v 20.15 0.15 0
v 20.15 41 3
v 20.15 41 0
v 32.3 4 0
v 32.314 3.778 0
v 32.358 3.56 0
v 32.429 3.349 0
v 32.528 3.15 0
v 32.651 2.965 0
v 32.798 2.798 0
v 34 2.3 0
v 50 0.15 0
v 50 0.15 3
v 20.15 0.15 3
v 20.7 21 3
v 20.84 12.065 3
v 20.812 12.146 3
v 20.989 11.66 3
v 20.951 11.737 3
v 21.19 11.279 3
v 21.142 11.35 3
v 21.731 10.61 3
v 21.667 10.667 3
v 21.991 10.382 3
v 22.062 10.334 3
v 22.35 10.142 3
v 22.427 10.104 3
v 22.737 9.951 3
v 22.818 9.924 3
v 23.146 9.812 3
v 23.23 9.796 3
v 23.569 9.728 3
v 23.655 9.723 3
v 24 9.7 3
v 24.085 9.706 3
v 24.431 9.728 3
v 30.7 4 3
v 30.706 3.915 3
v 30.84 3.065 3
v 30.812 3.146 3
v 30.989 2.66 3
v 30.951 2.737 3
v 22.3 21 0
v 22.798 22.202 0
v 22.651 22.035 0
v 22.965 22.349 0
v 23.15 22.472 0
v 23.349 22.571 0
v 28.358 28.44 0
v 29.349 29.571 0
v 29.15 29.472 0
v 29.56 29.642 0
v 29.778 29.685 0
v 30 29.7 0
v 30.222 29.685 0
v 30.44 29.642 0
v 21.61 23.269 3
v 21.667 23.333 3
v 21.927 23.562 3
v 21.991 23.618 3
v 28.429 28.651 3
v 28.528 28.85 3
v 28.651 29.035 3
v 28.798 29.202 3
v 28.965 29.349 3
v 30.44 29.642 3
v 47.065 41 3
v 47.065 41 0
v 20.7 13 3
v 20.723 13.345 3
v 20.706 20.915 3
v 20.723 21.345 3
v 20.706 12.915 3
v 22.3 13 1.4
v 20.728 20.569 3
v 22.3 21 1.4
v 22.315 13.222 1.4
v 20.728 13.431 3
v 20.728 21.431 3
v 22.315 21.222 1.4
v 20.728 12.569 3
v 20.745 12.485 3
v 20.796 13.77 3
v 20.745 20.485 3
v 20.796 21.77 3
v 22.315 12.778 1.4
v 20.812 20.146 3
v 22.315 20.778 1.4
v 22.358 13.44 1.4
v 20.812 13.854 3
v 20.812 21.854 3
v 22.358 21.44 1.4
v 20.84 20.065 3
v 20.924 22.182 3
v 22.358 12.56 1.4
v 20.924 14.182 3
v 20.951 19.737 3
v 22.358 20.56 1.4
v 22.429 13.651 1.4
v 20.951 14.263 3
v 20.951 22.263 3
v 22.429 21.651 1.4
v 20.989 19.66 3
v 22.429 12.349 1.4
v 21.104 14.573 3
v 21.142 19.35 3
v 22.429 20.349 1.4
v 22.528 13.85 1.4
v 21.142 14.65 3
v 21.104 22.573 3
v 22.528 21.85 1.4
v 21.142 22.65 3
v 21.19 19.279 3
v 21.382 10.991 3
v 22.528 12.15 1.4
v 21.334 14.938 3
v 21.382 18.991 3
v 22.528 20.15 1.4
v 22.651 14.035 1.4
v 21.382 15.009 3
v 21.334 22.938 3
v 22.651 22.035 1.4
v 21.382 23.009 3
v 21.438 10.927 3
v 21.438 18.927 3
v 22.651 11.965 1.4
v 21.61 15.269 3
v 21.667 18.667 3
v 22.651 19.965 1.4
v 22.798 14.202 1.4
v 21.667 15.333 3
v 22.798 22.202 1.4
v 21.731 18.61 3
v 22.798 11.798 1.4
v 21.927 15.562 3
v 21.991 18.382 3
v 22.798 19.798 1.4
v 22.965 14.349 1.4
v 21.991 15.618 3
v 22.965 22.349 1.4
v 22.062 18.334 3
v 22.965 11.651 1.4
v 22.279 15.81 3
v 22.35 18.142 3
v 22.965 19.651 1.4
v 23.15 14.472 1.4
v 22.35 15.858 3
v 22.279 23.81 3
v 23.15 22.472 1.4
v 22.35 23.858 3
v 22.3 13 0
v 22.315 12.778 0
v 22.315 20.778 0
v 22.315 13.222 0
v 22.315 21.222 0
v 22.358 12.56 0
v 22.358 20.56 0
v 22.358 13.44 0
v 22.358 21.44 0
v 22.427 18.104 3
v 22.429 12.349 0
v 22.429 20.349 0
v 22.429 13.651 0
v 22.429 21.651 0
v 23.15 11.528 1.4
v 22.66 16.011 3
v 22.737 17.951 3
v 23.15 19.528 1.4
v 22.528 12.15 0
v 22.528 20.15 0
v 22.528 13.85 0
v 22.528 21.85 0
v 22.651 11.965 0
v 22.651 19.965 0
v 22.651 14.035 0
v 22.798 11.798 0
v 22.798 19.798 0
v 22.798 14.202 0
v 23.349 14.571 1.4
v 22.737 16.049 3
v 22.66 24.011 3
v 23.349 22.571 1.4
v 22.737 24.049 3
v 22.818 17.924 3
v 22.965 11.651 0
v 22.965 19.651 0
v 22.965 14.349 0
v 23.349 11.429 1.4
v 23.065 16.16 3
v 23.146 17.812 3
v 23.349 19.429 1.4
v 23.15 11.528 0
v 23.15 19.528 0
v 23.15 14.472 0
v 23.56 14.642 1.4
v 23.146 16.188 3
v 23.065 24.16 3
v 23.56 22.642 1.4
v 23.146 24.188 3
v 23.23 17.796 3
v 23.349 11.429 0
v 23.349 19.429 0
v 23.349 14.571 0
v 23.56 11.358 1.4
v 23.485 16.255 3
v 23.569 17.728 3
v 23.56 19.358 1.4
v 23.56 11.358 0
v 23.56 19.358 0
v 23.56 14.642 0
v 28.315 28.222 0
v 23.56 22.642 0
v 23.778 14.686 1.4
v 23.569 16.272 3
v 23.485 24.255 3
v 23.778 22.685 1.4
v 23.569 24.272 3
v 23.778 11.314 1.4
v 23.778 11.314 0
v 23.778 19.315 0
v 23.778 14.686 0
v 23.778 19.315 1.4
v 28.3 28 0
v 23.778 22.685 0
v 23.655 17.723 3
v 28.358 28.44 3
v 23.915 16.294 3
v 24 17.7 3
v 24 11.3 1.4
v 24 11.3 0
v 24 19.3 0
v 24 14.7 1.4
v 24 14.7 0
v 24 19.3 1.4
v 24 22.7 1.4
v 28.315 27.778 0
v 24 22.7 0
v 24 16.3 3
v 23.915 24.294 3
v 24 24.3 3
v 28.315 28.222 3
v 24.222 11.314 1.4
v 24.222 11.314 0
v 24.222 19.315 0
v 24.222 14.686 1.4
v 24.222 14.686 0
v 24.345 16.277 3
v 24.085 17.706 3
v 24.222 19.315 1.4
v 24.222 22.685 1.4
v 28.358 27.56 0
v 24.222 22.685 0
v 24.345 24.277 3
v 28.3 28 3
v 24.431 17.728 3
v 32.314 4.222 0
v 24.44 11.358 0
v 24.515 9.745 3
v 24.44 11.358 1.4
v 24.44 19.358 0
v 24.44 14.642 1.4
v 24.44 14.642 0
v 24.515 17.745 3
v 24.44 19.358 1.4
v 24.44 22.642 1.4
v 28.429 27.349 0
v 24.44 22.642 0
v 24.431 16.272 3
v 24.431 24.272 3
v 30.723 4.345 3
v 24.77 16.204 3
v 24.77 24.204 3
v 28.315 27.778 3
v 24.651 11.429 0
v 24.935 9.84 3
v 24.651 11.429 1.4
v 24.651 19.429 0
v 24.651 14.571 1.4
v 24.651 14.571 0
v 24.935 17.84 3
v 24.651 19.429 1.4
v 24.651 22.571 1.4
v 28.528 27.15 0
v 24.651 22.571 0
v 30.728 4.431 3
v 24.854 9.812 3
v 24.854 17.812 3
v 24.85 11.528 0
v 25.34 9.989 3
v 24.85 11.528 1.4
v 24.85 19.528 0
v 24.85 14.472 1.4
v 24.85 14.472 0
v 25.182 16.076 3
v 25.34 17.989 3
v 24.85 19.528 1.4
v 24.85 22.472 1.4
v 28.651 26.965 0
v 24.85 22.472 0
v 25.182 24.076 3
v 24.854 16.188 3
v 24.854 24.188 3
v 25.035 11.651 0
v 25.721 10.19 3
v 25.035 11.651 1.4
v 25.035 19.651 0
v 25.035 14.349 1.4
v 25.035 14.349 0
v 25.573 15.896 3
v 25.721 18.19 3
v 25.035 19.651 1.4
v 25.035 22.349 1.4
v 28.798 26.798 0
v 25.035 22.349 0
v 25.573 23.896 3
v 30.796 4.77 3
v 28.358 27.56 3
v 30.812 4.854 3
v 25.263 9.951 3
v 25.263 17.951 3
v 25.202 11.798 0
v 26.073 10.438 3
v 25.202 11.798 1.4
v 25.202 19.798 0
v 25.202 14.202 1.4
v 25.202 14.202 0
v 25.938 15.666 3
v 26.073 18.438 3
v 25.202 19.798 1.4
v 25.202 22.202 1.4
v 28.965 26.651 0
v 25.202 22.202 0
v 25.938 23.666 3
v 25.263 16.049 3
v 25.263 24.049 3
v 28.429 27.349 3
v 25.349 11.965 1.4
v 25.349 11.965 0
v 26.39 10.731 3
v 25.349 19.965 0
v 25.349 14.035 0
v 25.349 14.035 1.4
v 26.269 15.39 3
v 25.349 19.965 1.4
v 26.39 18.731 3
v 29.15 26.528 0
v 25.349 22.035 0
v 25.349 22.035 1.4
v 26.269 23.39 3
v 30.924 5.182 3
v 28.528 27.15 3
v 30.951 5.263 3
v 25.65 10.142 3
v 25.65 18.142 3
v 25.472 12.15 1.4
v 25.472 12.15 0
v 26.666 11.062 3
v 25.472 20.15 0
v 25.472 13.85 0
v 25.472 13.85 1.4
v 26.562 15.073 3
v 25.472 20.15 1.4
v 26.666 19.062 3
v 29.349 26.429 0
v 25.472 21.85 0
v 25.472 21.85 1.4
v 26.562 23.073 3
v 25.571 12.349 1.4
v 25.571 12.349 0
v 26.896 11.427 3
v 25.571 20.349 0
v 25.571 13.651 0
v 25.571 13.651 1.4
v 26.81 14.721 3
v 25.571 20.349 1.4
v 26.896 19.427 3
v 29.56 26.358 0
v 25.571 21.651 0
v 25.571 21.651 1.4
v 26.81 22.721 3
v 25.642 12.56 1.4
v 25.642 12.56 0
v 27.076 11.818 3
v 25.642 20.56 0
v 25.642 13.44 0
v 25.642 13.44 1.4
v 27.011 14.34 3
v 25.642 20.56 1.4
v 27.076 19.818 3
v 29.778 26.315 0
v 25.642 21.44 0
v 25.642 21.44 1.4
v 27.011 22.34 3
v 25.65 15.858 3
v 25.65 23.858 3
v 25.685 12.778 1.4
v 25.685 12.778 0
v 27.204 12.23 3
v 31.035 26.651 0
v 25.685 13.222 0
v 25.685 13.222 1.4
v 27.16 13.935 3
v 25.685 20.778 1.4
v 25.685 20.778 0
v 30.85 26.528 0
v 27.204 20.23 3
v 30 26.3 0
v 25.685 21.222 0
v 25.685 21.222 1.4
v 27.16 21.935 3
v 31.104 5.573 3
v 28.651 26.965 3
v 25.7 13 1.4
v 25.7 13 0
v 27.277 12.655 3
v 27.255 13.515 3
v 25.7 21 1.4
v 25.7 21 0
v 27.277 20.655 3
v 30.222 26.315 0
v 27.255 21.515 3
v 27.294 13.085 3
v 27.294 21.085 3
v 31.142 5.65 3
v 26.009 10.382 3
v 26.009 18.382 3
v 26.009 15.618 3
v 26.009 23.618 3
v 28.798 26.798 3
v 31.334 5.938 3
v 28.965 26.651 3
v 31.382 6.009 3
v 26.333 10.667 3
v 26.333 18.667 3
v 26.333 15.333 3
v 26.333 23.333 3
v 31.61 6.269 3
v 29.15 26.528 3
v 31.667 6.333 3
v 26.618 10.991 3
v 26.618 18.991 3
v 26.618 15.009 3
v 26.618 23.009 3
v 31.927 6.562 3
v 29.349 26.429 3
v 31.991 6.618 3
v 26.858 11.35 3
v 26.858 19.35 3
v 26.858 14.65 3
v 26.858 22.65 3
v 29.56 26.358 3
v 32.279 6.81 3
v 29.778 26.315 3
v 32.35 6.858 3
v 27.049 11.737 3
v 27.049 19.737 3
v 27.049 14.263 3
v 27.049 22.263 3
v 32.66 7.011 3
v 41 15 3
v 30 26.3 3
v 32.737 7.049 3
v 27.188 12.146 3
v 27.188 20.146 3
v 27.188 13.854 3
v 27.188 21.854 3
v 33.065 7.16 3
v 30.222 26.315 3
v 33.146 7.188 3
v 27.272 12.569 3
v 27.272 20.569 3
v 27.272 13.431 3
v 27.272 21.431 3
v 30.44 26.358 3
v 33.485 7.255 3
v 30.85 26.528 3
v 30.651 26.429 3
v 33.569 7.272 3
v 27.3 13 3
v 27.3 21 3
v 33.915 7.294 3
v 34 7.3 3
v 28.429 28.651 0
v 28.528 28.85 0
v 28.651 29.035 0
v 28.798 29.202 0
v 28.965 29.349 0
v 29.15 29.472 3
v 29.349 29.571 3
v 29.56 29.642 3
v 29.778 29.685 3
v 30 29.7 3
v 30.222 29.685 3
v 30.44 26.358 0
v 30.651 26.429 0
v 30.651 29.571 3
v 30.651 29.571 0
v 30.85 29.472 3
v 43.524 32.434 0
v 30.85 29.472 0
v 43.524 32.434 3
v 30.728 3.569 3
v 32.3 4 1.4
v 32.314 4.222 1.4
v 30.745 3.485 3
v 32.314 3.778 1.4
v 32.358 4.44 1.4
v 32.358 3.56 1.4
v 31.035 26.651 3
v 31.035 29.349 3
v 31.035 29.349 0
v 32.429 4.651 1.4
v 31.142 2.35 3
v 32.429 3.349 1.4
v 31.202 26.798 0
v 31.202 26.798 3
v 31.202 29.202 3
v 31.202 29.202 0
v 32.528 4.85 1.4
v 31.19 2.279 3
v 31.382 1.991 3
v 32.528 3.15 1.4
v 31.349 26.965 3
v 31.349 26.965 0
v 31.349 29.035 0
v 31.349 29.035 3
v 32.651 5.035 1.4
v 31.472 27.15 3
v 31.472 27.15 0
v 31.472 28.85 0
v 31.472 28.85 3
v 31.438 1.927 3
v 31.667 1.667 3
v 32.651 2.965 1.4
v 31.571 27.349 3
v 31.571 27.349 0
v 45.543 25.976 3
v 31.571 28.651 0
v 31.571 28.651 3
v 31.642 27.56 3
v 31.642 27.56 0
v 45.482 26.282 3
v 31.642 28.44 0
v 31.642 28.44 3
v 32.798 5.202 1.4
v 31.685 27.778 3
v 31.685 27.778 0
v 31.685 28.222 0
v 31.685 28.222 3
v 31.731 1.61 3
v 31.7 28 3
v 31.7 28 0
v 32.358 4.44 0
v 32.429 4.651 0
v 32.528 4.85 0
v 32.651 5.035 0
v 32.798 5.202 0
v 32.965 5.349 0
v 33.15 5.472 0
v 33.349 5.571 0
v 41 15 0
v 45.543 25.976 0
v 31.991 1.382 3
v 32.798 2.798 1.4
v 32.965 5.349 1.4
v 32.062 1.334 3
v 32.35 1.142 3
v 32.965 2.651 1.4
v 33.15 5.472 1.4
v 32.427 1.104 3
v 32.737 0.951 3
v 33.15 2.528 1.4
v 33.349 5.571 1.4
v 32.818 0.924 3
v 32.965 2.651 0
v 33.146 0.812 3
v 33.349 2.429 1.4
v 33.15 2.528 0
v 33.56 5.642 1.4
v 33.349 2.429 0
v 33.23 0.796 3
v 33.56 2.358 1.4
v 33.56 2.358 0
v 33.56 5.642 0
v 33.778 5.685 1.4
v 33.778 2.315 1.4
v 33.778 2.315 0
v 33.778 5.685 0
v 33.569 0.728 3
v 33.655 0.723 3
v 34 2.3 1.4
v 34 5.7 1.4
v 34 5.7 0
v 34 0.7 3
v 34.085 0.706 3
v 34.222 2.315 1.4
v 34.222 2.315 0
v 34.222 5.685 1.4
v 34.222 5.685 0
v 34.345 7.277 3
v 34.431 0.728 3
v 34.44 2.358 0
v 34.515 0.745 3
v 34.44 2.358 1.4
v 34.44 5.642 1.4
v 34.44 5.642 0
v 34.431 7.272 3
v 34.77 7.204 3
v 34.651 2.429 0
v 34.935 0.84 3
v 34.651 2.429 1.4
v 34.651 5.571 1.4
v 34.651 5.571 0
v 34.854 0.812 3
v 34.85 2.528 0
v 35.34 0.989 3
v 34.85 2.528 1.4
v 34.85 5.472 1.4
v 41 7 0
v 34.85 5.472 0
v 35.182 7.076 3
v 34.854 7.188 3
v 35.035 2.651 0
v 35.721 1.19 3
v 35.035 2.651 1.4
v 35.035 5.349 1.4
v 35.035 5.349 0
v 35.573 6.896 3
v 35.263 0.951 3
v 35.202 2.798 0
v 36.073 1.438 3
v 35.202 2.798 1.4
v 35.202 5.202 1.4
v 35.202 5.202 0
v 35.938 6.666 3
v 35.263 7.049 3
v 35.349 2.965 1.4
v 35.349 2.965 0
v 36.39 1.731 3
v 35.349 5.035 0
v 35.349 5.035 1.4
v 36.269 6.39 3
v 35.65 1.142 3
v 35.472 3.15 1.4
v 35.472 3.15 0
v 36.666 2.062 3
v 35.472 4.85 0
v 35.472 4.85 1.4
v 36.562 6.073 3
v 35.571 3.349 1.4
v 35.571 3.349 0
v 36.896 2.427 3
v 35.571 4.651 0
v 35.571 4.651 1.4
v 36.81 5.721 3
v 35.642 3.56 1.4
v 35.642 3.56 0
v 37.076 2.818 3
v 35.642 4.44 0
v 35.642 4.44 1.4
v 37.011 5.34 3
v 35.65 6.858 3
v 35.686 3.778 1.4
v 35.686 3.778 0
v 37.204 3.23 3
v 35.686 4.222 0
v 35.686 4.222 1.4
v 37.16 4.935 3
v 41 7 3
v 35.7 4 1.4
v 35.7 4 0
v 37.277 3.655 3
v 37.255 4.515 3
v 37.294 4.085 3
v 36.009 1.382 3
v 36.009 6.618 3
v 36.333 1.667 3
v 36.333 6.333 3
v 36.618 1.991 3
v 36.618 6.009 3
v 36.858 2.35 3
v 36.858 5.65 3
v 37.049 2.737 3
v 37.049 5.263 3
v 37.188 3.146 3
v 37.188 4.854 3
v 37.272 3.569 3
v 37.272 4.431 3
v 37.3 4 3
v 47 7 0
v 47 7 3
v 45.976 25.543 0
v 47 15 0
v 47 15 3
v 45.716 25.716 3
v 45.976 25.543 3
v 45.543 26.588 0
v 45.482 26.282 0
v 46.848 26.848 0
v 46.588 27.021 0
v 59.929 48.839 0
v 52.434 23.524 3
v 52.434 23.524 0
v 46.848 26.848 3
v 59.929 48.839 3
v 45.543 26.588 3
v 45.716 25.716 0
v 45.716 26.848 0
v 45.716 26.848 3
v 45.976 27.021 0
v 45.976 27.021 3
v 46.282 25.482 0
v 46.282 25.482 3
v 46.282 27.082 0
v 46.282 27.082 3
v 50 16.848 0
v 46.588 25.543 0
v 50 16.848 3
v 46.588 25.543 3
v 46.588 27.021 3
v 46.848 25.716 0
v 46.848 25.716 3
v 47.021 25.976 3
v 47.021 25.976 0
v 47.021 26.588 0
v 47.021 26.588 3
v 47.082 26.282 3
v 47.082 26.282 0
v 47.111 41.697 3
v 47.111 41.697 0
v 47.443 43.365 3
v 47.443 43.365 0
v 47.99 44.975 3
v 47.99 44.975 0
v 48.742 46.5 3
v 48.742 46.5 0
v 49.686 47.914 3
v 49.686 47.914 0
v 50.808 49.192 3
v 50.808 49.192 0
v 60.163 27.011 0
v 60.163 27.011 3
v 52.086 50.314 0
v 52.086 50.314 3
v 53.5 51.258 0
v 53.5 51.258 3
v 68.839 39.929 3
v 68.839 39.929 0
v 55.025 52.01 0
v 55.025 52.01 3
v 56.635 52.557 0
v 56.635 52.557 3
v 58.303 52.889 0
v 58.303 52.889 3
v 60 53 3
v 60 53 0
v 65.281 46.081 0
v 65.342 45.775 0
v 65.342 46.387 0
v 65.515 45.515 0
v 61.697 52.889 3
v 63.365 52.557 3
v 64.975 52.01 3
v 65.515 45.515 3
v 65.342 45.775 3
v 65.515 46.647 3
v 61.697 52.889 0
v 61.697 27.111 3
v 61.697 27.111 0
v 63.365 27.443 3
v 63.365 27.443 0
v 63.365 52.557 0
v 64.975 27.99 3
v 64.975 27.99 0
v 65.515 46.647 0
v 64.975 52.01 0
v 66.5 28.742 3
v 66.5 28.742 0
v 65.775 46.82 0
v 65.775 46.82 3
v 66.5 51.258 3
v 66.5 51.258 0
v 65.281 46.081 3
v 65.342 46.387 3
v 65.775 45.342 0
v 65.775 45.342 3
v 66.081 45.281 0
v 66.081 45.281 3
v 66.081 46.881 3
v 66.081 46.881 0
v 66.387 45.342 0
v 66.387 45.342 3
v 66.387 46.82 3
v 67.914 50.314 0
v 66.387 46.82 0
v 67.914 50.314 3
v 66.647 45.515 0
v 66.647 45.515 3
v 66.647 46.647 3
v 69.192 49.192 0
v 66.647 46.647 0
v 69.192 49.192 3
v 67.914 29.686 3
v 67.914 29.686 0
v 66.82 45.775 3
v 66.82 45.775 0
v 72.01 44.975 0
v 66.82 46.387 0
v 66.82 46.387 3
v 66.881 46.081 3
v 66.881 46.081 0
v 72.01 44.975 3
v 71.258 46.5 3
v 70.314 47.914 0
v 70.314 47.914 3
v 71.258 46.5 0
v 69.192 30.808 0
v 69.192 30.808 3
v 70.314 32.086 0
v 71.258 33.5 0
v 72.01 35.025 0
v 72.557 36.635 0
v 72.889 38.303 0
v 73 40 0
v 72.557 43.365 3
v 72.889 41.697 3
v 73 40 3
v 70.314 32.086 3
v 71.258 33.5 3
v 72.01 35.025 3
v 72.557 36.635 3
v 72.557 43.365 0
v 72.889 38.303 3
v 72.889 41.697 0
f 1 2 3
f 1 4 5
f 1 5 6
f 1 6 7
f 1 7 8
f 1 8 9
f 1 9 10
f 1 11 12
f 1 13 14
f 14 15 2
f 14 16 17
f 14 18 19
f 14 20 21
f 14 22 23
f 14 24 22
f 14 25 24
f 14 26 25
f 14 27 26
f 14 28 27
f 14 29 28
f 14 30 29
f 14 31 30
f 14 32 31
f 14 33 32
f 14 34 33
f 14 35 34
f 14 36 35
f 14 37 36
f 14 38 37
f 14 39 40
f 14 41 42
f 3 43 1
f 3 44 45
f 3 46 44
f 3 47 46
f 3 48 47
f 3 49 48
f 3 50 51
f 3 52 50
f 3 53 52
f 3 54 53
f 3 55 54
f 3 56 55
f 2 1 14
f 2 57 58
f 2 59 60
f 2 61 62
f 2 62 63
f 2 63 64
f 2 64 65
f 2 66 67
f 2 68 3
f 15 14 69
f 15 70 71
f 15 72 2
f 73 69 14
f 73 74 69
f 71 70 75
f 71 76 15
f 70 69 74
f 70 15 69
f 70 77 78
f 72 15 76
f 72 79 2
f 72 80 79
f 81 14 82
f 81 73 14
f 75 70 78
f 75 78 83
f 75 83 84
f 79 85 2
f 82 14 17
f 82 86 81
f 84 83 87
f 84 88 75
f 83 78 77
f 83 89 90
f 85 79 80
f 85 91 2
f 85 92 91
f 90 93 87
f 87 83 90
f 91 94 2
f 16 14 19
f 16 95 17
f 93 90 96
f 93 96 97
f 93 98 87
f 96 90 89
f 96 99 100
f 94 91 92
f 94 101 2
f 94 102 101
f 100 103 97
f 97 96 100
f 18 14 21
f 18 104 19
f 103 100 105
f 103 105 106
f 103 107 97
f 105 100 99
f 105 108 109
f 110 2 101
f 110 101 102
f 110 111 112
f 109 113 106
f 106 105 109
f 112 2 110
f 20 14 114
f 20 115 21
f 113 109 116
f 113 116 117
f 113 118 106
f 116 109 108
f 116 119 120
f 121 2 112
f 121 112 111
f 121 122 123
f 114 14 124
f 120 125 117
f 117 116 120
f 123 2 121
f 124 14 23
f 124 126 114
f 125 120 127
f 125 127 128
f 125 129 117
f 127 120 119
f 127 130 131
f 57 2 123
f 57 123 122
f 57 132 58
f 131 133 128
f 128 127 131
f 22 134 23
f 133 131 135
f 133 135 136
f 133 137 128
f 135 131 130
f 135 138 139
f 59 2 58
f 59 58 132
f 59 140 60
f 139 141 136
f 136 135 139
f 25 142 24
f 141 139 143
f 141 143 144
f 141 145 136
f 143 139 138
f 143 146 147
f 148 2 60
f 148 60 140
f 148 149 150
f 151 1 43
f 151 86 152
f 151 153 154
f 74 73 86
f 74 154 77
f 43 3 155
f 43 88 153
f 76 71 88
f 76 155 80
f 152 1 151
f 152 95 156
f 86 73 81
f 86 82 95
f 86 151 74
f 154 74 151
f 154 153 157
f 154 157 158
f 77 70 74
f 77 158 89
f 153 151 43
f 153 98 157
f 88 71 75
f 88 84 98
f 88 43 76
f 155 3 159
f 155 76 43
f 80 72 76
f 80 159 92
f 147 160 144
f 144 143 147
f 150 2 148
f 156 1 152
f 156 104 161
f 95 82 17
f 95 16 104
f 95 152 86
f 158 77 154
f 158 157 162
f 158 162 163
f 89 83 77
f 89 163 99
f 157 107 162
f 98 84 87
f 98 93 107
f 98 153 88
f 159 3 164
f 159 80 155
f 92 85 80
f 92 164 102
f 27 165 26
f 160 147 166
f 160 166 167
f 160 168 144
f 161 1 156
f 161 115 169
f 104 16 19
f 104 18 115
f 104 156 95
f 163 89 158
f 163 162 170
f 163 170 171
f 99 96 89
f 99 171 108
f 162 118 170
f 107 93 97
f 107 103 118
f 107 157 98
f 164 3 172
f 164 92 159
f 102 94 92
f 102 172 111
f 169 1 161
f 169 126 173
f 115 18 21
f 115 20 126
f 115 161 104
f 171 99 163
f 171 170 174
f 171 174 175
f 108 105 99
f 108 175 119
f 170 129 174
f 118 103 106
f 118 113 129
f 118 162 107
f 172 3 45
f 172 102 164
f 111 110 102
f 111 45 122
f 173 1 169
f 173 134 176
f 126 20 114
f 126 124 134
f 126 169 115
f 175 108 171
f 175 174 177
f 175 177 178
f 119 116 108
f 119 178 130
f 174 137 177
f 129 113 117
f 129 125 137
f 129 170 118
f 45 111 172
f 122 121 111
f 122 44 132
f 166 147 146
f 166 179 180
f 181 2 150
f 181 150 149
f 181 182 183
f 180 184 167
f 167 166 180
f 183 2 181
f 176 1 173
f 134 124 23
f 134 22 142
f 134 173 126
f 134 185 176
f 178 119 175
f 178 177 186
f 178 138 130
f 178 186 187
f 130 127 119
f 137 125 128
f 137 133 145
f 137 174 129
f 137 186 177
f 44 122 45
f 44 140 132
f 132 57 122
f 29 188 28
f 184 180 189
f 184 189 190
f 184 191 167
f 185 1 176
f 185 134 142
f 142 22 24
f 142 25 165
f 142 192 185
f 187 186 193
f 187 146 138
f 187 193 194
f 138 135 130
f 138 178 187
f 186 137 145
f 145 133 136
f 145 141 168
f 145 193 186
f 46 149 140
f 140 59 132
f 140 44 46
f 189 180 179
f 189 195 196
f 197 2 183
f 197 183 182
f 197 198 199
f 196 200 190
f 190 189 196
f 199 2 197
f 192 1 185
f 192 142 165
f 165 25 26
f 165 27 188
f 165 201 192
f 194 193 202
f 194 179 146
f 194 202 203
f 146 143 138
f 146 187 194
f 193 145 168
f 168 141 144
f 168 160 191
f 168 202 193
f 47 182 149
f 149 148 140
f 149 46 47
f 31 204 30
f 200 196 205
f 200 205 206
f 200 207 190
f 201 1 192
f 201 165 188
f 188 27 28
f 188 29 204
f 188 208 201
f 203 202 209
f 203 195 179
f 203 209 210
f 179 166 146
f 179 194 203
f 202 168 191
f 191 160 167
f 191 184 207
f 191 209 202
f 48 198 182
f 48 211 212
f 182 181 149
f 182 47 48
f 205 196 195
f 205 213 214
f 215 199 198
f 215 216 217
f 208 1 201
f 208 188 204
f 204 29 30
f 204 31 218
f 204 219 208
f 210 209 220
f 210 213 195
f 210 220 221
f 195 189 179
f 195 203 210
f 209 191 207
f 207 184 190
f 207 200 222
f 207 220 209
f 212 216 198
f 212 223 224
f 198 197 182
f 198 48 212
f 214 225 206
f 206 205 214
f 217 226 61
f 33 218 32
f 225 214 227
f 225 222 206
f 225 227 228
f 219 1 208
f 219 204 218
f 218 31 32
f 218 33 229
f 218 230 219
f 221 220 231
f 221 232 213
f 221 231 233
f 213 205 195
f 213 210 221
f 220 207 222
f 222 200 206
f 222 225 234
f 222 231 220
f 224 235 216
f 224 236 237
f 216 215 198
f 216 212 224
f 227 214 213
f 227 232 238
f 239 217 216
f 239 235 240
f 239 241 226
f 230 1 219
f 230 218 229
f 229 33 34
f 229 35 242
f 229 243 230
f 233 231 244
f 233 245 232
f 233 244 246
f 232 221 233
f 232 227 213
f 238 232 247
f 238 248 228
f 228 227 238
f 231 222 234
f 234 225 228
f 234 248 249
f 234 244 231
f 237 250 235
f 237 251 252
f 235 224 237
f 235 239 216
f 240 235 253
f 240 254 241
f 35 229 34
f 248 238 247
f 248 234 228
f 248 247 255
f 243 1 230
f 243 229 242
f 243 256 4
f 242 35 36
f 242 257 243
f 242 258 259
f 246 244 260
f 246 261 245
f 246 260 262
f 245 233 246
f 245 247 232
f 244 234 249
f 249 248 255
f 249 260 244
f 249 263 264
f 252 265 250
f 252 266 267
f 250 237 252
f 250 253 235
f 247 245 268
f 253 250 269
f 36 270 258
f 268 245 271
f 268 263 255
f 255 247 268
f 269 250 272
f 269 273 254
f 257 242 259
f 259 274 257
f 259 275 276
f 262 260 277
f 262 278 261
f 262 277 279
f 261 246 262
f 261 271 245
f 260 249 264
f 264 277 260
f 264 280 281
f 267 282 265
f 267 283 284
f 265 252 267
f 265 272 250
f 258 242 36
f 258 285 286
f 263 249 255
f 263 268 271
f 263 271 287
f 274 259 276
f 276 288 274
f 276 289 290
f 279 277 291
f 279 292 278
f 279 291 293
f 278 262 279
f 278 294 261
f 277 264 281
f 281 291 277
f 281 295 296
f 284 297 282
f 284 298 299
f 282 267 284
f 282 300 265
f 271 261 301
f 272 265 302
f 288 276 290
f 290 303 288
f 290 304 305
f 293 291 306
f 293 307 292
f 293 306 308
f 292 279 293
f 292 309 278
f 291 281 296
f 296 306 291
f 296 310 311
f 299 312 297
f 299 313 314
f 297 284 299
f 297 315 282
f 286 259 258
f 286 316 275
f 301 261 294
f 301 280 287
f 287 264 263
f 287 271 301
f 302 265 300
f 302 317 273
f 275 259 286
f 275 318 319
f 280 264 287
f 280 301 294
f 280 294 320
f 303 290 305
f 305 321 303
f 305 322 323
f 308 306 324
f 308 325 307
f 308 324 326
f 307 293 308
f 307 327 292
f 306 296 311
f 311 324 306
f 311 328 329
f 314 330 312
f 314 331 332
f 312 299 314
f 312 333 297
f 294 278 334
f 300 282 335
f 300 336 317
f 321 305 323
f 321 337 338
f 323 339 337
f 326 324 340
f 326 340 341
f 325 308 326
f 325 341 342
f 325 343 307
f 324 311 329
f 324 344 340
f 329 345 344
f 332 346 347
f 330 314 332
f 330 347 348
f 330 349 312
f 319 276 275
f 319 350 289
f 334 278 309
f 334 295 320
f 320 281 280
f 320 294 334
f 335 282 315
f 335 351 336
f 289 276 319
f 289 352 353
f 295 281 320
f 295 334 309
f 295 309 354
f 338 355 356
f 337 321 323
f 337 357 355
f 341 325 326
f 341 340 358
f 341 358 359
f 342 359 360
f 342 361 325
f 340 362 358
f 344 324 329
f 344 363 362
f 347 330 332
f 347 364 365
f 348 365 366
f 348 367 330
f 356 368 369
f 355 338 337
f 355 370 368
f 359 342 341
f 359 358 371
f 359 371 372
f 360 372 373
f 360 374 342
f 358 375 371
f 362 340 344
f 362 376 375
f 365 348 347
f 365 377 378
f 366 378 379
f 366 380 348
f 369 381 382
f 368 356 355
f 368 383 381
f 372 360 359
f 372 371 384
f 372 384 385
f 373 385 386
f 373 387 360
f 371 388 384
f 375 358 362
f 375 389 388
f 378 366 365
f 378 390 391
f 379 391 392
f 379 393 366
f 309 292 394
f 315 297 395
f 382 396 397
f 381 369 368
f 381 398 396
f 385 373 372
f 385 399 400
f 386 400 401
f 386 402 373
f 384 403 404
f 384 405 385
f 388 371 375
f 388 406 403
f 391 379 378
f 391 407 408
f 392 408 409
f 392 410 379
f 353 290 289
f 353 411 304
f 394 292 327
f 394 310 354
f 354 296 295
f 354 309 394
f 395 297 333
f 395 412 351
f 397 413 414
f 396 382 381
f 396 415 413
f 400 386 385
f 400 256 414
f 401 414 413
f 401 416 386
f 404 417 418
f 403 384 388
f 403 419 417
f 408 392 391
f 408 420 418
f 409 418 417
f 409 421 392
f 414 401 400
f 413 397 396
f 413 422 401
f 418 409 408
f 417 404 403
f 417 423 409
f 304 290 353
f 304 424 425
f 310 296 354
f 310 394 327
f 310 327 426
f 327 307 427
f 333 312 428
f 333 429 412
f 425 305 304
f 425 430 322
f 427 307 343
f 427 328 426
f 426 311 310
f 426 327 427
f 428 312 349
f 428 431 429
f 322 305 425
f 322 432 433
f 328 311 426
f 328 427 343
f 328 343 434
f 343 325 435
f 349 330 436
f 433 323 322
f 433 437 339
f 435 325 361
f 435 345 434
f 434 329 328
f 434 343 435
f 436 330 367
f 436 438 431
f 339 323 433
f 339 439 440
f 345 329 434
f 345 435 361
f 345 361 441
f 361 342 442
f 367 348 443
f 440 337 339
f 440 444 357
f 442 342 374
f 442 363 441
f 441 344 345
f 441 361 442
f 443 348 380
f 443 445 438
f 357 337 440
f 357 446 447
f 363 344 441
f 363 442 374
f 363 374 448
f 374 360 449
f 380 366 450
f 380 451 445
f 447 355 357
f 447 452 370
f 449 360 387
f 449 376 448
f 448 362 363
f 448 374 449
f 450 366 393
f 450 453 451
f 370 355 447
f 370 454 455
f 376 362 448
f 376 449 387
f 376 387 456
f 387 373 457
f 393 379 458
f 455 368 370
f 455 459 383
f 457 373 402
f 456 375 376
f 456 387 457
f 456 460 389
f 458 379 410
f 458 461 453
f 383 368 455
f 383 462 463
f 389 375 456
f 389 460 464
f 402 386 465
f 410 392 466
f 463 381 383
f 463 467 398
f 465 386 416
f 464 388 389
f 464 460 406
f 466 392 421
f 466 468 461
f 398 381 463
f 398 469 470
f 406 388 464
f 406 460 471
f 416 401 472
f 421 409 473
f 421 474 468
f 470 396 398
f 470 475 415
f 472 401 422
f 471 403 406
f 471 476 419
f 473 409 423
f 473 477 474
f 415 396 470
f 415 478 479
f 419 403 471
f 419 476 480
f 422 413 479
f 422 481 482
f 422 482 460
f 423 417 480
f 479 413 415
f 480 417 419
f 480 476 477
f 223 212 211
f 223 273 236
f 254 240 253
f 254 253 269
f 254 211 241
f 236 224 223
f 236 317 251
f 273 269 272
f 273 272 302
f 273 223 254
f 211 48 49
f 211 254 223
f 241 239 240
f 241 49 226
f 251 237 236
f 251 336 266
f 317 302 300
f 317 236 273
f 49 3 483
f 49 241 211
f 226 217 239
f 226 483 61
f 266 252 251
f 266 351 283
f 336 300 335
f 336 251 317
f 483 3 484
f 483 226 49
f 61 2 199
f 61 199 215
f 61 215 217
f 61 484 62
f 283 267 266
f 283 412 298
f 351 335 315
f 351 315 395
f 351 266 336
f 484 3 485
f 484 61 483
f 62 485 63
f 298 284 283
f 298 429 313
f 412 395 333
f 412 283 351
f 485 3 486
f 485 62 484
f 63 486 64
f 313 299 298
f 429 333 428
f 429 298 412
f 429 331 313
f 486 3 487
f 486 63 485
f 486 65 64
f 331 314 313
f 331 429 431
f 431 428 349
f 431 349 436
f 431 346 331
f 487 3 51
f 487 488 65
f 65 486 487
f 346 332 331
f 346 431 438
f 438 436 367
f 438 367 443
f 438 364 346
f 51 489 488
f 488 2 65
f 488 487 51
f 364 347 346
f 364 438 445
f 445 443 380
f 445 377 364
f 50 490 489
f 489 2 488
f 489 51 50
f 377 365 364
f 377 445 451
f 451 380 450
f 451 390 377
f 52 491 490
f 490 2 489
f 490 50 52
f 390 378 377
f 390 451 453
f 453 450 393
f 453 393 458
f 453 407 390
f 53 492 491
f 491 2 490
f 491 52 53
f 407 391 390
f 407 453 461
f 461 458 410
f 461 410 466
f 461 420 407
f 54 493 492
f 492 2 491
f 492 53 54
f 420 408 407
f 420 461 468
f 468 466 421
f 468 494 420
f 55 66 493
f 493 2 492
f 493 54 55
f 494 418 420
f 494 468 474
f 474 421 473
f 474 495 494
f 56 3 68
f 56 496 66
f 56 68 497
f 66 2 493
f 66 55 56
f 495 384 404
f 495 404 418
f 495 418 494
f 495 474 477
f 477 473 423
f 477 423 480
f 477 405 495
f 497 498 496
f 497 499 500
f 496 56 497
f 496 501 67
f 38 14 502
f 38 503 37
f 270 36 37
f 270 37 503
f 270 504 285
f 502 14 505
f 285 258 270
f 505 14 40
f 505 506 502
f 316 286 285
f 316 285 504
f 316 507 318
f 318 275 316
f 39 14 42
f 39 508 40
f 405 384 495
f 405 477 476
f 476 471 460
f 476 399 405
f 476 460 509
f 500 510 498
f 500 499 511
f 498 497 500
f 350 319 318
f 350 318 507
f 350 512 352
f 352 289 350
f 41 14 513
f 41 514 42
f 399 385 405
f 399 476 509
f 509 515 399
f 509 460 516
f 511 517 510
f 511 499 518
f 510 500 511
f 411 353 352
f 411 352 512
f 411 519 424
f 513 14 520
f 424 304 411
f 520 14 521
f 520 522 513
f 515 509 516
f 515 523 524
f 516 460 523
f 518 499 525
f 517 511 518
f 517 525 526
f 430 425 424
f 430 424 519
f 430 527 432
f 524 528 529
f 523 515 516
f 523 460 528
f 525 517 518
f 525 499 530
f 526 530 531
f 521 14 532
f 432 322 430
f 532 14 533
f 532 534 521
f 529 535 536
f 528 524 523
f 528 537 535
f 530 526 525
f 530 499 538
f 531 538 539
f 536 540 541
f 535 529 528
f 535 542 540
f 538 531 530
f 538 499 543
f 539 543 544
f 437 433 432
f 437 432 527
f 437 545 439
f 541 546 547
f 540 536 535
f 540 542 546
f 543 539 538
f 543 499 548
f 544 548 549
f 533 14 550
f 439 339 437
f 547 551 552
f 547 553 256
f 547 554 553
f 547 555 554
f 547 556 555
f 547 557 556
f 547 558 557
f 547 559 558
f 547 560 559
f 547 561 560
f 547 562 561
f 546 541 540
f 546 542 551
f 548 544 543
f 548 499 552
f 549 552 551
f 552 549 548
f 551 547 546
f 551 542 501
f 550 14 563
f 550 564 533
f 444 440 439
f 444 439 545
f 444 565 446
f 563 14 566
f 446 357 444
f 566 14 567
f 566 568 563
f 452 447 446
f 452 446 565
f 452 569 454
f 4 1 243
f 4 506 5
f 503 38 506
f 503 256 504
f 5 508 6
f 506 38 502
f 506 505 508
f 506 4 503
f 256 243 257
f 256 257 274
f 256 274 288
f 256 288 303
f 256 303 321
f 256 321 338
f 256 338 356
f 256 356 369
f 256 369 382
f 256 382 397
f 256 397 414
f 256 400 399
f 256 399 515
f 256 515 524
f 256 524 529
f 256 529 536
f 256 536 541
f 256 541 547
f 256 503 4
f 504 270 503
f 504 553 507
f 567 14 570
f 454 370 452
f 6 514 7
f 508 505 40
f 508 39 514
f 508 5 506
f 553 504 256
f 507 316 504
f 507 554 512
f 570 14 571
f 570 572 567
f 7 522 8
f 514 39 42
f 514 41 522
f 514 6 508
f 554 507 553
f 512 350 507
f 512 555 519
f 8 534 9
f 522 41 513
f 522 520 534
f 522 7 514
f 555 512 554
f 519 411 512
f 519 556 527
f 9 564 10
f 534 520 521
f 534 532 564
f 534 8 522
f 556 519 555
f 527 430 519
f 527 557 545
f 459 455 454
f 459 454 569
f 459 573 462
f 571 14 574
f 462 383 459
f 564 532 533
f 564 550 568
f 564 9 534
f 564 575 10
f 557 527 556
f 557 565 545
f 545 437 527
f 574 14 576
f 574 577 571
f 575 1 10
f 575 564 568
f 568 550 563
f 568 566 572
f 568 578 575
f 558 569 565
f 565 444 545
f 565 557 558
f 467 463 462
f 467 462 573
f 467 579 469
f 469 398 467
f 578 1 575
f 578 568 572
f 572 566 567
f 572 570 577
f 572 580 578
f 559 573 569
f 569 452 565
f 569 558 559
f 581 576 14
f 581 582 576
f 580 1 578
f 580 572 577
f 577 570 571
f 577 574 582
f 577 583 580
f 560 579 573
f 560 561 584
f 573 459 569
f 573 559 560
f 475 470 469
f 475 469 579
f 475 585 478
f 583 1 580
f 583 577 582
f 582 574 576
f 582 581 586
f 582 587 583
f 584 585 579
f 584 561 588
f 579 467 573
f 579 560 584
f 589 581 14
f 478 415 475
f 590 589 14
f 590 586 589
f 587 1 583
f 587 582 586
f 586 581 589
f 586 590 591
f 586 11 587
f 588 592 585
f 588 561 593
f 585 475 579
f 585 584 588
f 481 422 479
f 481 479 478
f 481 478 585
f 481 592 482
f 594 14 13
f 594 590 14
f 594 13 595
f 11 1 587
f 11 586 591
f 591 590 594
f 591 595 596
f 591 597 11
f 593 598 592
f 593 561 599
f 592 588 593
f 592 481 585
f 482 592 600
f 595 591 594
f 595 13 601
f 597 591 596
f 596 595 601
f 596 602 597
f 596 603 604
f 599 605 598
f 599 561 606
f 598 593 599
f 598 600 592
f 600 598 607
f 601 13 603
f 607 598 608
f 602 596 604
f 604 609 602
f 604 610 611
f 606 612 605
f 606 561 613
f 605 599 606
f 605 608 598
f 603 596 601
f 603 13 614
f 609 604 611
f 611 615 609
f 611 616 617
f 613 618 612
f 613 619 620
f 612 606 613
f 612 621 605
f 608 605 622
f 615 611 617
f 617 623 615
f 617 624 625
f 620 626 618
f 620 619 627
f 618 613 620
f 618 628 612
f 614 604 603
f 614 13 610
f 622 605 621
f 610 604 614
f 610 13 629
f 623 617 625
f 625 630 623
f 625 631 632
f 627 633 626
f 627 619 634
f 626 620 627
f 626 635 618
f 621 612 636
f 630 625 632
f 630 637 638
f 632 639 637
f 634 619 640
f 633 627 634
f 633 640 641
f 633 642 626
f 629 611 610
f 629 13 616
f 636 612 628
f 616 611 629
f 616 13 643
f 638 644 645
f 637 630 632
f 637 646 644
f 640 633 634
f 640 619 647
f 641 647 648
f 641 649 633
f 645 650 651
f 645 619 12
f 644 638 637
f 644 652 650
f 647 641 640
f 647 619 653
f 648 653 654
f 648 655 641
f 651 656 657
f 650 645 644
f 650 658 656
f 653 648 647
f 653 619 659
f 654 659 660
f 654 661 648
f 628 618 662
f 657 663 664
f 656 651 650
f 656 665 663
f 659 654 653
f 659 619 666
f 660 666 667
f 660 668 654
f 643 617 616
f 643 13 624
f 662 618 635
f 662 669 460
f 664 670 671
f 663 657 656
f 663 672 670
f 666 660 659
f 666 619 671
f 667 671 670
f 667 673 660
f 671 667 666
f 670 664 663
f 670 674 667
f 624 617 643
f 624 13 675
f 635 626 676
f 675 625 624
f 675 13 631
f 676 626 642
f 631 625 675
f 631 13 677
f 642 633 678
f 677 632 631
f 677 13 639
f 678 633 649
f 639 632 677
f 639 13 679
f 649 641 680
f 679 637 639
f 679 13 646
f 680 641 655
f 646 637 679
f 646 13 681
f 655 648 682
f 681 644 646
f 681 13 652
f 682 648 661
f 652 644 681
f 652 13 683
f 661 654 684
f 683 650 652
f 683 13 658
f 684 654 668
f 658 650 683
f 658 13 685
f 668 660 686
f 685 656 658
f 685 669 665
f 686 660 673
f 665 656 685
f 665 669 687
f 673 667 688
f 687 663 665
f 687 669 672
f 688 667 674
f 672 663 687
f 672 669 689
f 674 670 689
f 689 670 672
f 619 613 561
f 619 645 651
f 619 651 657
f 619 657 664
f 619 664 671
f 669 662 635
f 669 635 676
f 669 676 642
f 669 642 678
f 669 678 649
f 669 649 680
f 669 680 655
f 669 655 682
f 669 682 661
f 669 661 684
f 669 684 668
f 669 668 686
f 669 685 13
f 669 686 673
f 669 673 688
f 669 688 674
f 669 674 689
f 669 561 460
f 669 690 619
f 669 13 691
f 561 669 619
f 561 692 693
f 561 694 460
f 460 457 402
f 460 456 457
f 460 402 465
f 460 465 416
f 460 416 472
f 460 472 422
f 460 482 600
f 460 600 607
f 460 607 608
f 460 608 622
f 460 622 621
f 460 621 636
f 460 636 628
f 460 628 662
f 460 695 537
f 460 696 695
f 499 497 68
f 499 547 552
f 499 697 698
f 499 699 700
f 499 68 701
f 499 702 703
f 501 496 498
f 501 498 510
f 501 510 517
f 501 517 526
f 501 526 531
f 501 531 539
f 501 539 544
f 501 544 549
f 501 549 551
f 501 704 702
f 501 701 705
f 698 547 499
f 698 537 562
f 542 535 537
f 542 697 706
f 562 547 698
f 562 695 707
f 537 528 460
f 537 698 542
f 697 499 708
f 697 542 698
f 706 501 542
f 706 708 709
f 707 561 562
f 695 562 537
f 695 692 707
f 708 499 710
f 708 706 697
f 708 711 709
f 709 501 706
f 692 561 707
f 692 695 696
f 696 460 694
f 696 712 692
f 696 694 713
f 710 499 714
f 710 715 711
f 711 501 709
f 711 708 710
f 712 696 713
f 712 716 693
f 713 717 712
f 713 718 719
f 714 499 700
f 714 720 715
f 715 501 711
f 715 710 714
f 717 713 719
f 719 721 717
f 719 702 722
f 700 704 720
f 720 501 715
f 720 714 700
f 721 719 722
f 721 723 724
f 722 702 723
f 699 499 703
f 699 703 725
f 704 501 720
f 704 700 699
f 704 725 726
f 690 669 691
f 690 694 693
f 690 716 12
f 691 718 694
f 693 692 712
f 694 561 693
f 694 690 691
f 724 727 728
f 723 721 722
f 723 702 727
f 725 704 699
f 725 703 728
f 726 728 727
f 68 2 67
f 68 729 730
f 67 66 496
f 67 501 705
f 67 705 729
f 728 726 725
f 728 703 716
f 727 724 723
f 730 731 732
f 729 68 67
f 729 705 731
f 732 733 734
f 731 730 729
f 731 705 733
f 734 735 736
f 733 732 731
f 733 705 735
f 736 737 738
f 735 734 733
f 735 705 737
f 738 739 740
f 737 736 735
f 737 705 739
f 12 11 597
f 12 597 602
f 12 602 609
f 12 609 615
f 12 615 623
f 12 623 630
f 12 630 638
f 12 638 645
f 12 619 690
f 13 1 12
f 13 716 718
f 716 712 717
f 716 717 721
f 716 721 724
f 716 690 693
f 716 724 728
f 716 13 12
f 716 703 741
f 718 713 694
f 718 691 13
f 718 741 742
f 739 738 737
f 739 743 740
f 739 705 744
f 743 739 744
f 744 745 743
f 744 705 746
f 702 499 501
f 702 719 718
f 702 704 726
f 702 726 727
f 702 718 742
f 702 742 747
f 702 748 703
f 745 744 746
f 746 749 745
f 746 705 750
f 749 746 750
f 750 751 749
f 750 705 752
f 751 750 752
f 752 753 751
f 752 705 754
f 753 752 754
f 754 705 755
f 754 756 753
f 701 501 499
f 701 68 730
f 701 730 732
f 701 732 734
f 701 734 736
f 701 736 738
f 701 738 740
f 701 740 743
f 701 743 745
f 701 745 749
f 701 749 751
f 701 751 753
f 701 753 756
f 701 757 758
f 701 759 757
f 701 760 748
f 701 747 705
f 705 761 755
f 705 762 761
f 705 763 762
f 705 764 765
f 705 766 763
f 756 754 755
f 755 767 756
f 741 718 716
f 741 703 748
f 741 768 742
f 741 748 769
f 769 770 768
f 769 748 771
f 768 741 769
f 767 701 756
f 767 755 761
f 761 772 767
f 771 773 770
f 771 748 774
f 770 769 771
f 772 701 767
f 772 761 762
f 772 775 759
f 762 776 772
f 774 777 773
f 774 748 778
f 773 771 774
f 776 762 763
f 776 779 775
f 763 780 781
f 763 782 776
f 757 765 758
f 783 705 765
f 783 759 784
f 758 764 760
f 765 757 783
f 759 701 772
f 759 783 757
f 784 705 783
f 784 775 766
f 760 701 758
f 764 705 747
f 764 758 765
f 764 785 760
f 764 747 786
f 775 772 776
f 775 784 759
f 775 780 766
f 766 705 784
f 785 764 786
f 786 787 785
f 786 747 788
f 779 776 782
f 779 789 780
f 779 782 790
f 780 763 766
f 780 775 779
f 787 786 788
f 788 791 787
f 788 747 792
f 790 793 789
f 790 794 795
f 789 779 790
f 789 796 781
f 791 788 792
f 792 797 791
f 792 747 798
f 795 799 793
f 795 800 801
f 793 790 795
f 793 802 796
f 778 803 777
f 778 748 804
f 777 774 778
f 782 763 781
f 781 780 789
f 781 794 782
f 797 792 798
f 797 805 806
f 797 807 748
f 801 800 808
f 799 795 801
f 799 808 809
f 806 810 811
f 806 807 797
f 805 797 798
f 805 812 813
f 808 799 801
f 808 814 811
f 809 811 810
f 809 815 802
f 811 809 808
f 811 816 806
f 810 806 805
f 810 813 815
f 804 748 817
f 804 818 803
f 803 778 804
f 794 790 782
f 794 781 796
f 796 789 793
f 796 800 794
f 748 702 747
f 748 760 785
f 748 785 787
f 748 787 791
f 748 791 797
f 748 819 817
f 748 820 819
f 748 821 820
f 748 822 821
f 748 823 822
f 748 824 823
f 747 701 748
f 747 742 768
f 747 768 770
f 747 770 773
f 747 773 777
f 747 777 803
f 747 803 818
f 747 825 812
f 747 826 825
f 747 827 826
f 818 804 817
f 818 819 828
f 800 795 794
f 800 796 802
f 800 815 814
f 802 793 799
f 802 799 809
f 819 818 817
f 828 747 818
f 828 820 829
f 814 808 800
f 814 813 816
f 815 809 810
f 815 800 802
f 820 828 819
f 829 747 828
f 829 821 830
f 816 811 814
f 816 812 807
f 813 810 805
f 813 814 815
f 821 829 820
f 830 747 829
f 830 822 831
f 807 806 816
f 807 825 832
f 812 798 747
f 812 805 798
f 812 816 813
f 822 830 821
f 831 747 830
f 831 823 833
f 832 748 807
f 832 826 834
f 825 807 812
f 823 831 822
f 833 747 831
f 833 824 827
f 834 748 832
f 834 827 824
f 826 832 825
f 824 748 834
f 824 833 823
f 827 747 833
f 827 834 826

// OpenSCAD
// file: params.scad
// 18 舵机六足 · 3D 打印机身 · 共享参数和公共模块（本文件自己不导出 STL）
//
// 腿的几何尺寸和固件 firmware/hexapod_g7pro/params.h 的默认值一一对应：
//   coxa_len ↔ coxa    femur_len ↔ femur    tibia_len ↔ tibia
//   front_x / front_y / front_angle / mid_y / rear_x / rear_y / rear_angle 同名
// 所以打印这套机身，固件的腿长和安装位置参数都不用改。
//
// 坐标约定（和固件一致）：
//   机身坐标：X+ = 前，Y+ = 左，Z+ = 上，原点 = 机身中心，高度原点 = 大腿舵机轴。
//   腿坐标：原点 = 基节转轴，X+ = 腿朝外，Y+ = 逆时针一侧，Z+ = 上。
// 6 条腿的零件完全一样（不分左右），左右舵机转向的差别由固件里的 dir 参数处理。

/* [舵机 MG90S（量你自己的）] */
servo_w = 12.2;           // 机身宽度 (mm)
servo_l = 22.8;           // 机身长度，沿安装耳方向 (mm)
ear_span = 32.5;          // 两个安装耳外端之间的总长 (mm)
ear_hole_spacing = 28.0;  // 两个安装孔的中心距 (mm)
ear_z = 15.9;             // 机壳底面 → 安装耳下表面 (mm)
ear_t = 2.5;              // 安装耳厚度 (mm)
case_h = 22.7;            // 机壳底面 → 机壳顶面（不含输出轴）(mm)
shaft_off = 5.4;          // 输出轴中心 → 机身中心，沿长度方向 (mm)
shaft_gap = 4.0;          // 机壳顶面 → 舵机臂贴合面 (mm)

/* [舵机臂（单边臂，量你自己的）] */
horn_hub_d = 7.6;         // 舵机臂中心圆盘直径 (mm)
horn_len = 18.5;          // 中心 → 臂尖 (mm)
horn_w_hub = 6.2;         // 臂根宽度 (mm)
horn_w_tip = 4.2;         // 臂尖宽度 (mm)
horn_t = 1.6;             // 臂厚 = 零件上凹槽深度 (mm)
horn_holes = [10.5, 14.5];// 固定舵机臂的两个孔到中心的距离 (mm)
horn_screw_access = 5.5;  // 中心过孔：舵机臂中心螺丝和螺丝刀从这里进 (mm)

/* [腿的几何（和固件 params.h 一致）] */
coxa_len = 28;            // 基节转轴 → 大腿舵机轴 (mm)
femur_len = 50;           // 大腿舵机轴 → 小腿舵机轴 (mm)
tibia_len = 75;           // 小腿舵机轴 → 脚尖 (mm)
front_x = 60; front_y = 40; front_angle = 45;
mid_y = 55;
rear_x = 60; rear_y = 40; rear_angle = 135;

/* [打印余量和螺丝] */
clearance = 0.4;          // 方孔比舵机大多少 (mm)；太紧改 0.5
screw_pilot = 1.6;        // M2 自攻螺丝底孔（舵机安装耳）(mm)
horn_screw_hole = 2.0;    // 舵机臂固定螺丝过孔 (mm)
m3_hole = 3.4;            // M3 通孔 (mm)

/* [机身] */
plate_t = 3.0;            // 底板 / 甲板厚度 (mm)
standoff_h = 25;          // 底板和甲板之间的 M3 铜柱长度 (mm)
bar_t = 4.0;              // 大腿板厚度 (mm)
mount_t = 3.0;            // 舵机安装板厚度 (mm)
coxa_horn_z = 11;         // 基节舵机臂贴合面高度（相对大腿轴）(mm)

/* [Hidden] */
// 6 条腿：[髋轴 X, 髋轴 Y, 朝向°]，顺序 LF LM LR RF RM RR（和固件 leg 0..5 一致）
legs = [
  [ front_x,  front_y,  front_angle],
  [ 0,        mid_y,    90],
  [-rear_x,   rear_y,   rear_angle],
  [ front_x, -front_y, -front_angle],
  [ 0,       -mid_y,   -90],
  [-rear_x,  -rear_y,  -rear_angle]
];
leg_names = ["LF", "LM", "LR", "RF", "RM", "RR"];

pocket_w = servo_w + clearance;
pocket_l = servo_l + clearance;
// 舵机本地坐标：输出轴 = +Z，舵机臂贴合面在 z = 0，机身沿 +X 伸出（机身中心 x = shaft_off）
ear_low = -shaft_gap - case_h + ear_z;       // 安装耳“朝机壳底”的那一面，安装板贴在这里
plate_top_z = coxa_horn_z + ear_low;         // 底板上表面高度（相对大腿轴）
deck_z = plate_top_z + standoff_h;           // 甲板下表面高度

module at_leg(l) translate([l[0], l[1]]) rotate(l[2]) children();

// 舵机实体（装配预览 / 干涉检查用）
module servo_body() {
  color("DimGray") {
    translate([shaft_off - servo_l / 2, -servo_w / 2, -shaft_gap - case_h]) cube([servo_l, servo_w, case_h]);
    // 耳朵和输出轴都留 0.05 mm，避免“刚好贴着”被干涉检查当成碰撞
    translate([shaft_off - ear_span / 2, -servo_w / 2, ear_low + 0.05]) cube([ear_span, servo_w, ear_t - 0.05]);
    translate([0, 0, -shaft_gap]) cylinder(d = 5, h = shaft_gap - 0.05);
  }
}

// 安装板上的舵机方孔 + 两个安装耳螺丝底孔（在舵机本地坐标里，穿过安装板）
module servo_mount_cut() {
  translate([shaft_off - pocket_l / 2, -pocket_w / 2, ear_low - mount_t - 1]) cube([pocket_l, pocket_w, mount_t + 2]);
  for (s = [-1, 1]) translate([shaft_off + s * ear_hole_spacing / 2, 0, ear_low - mount_t - 1])
    cylinder(d = screw_pilot, h = mount_t + 2, $fn = 16);
}

// 单边舵机臂的 2D 外形：中心在原点，臂沿 +X
module horn_2d(extra = 0) {
  hull() {
    circle(d = horn_hub_d + extra);
    translate([0, -(horn_w_hub + extra) / 2]) square([0.01, horn_w_hub + extra]);
    translate([horn_len - horn_w_tip / 2, 0]) circle(d = horn_w_tip + extra);
  }
}

// 舵机臂凹槽：从 z = 0 往 +Z 挖 horn_t 深，加中心过孔和两个螺丝过孔（贯穿 depth）
module horn_cut(depth) {
  translate([0, 0, -0.01]) linear_extrude(horn_t + 0.01) horn_2d(clearance);
  translate([0, 0, -1]) cylinder(d = horn_screw_access, h = depth + 2, $fn = 24);
  for (r = horn_holes) translate([r, 0, -1]) cylinder(d = horn_screw_hole, h = depth + 2, $fn = 16);
}
// main file
// 底板前左（左前腿）：打 1 个。平放（有沉头孔的一面朝上）。
include <parts.scad>
translate([0, 0, -(plate_top_z - plate_t)]) body_plate_piece(front = true, left = true);
